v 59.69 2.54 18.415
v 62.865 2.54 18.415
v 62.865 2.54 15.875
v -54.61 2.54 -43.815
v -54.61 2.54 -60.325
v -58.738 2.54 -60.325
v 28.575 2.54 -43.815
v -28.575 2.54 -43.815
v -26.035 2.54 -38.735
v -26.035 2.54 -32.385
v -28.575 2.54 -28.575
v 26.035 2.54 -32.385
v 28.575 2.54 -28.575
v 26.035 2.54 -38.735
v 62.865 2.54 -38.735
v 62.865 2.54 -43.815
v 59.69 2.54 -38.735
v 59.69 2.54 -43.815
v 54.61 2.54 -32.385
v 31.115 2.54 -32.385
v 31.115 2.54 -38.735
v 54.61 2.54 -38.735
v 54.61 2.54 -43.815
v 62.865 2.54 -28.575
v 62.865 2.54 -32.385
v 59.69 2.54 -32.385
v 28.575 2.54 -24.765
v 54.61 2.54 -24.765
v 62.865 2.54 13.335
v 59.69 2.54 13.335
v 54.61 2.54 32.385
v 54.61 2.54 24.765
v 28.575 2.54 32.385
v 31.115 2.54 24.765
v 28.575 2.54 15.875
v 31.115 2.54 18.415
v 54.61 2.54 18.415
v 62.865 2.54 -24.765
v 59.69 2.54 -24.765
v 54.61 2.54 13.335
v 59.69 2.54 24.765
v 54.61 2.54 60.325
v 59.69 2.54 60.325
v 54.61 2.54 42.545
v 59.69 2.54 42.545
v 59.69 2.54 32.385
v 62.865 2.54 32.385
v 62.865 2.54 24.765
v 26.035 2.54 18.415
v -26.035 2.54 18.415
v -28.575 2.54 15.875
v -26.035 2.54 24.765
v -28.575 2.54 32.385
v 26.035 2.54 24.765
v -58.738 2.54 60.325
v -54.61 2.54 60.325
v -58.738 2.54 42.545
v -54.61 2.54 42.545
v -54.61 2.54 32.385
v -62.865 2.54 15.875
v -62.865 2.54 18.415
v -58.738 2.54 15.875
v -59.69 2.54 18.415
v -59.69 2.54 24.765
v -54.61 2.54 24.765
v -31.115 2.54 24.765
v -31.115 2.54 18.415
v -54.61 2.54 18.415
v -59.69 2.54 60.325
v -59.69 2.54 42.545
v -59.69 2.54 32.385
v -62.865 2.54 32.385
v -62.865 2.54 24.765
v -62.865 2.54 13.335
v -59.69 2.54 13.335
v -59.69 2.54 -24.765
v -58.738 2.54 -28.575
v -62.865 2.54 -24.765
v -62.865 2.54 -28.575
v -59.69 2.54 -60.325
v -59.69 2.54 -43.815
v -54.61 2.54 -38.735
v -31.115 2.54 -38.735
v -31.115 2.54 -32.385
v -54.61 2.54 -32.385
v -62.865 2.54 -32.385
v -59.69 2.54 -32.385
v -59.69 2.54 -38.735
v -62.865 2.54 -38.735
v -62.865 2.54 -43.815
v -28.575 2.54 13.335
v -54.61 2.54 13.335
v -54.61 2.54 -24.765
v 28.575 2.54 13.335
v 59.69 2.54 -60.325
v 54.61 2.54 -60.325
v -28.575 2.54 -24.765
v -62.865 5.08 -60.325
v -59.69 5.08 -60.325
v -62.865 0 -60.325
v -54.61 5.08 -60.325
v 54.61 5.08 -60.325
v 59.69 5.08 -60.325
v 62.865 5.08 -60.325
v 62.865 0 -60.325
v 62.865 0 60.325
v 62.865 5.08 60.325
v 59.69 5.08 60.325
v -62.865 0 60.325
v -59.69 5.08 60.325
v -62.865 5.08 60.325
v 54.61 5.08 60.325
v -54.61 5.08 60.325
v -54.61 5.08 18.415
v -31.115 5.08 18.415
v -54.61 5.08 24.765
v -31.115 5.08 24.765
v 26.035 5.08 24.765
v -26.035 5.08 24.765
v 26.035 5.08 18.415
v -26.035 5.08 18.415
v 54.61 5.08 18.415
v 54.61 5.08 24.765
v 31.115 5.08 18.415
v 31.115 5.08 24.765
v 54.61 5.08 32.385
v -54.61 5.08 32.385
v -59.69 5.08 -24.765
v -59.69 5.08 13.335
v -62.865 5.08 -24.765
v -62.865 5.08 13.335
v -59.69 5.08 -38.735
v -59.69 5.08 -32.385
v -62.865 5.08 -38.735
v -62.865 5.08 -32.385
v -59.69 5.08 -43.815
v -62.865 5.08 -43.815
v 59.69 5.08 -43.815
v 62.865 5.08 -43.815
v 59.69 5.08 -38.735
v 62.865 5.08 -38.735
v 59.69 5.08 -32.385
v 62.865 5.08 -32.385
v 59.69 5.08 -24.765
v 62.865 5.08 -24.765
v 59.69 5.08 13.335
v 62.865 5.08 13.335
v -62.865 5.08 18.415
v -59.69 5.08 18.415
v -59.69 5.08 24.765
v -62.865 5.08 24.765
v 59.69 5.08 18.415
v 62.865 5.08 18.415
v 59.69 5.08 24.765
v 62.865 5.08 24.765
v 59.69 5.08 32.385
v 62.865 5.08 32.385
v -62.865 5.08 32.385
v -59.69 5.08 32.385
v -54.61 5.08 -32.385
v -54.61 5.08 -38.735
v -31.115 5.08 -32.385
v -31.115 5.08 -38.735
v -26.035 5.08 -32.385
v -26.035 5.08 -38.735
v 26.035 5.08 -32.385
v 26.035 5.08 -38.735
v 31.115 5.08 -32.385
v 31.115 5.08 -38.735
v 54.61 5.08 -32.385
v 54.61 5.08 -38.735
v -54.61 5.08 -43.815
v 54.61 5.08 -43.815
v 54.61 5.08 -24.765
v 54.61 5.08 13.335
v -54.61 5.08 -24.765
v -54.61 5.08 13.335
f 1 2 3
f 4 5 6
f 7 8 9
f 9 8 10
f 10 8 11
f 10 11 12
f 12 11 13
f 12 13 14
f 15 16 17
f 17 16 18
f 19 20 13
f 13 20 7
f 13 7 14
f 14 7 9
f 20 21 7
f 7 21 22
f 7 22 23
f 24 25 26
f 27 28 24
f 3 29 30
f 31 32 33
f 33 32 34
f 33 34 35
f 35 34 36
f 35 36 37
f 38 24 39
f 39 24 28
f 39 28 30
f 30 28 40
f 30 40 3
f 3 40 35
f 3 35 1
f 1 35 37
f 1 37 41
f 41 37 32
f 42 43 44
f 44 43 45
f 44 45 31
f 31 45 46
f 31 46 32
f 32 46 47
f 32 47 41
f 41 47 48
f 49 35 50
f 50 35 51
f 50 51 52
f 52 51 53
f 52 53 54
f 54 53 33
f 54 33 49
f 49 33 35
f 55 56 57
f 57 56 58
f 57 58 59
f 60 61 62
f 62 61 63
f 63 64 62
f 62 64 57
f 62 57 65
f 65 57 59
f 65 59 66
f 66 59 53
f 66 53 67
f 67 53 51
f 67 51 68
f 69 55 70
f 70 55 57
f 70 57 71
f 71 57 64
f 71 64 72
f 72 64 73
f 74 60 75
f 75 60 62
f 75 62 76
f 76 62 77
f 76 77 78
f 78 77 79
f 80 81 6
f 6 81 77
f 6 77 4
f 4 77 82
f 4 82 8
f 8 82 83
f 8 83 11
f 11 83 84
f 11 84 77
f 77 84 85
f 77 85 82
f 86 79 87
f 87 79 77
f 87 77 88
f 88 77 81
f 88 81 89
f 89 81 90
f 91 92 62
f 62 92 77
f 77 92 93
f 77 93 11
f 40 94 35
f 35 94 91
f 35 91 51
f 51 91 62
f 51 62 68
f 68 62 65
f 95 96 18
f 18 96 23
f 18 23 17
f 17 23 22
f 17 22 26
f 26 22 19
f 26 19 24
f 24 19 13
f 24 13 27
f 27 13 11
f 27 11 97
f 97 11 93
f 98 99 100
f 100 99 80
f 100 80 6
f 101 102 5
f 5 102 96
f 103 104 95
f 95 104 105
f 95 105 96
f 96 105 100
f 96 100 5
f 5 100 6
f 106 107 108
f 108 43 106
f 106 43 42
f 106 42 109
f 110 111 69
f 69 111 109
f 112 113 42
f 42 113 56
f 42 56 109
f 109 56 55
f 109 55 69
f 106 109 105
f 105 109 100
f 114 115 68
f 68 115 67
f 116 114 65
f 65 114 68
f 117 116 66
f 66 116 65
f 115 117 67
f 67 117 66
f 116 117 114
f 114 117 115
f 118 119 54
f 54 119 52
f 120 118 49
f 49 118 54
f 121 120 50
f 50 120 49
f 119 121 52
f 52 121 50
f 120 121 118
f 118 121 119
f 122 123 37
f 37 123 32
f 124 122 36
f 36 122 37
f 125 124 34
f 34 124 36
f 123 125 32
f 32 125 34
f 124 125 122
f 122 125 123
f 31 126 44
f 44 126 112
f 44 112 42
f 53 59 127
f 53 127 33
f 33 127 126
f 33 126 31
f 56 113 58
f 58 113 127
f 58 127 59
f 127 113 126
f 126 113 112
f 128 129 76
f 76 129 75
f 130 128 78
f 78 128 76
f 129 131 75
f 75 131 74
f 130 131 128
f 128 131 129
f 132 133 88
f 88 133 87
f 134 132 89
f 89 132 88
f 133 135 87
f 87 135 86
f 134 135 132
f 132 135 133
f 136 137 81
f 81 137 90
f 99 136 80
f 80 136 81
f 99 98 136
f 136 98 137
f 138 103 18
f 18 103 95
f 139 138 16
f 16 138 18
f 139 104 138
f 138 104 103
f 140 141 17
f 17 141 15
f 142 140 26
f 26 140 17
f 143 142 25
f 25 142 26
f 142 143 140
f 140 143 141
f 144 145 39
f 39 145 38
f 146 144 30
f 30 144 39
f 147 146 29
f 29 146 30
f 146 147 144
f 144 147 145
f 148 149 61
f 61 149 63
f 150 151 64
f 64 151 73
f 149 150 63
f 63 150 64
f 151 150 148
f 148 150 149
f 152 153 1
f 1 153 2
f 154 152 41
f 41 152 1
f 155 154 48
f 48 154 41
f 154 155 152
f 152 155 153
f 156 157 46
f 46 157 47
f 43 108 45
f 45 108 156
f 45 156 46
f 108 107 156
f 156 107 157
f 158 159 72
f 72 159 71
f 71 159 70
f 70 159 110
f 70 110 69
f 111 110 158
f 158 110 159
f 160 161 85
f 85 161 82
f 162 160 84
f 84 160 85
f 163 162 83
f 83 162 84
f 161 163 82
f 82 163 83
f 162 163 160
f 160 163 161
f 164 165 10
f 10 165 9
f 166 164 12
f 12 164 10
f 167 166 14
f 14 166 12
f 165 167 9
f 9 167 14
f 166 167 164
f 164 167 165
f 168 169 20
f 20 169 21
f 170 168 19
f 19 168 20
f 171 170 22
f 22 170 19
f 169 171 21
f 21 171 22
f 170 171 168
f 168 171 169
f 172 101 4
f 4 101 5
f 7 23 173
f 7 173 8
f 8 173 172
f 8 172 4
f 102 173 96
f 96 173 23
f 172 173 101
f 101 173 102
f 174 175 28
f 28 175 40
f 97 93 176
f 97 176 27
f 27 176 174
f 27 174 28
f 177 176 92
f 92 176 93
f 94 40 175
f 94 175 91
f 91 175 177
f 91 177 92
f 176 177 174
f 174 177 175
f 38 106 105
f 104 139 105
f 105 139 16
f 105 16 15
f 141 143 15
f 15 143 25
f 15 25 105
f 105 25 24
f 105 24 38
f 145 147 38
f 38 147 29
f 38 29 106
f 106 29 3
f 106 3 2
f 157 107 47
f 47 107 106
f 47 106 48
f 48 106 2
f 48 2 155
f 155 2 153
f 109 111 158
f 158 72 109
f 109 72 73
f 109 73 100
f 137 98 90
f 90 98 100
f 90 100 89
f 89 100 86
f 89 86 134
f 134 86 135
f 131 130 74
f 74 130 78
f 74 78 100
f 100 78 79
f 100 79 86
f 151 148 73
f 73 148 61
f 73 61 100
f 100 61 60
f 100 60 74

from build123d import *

# Parameters (mm, degrees)
SKETCH2_W           = 120.65
SKETCH2_H           = 120.65
BOSS_EXTRUDE1_DEPTH = 2.54
SKETCH3_W           = 23.495
SKETCH3_H           = 6.35
SKETCH3_W_2         = 52.07
SKETCH3_W_3         = 109.22
SKETCH3_H_2         = 27.94
SKETCH3_W_4         = 0.635
SKETCH3_H_3         = 38.1
SKETCH3_H_4         = 16.51
BOSS_EXTRUDE2_DEPTH = 2.54
BOSS_EXTRUDE4_DEPTH = 2.54


with BuildPart() as part:
    # Sketch2 → Boss-Extrude1 (new body)
    with BuildSketch(Plane(origin=(0, 0, 0), x_dir=(1, 0, 0), z_dir=(0, 1, 0))):
        Rectangle(SKETCH2_W, SKETCH2_H)
    extrude(amount=BOSS_EXTRUDE1_DEPTH)

    # Sketch3 → Boss-Extrude2 (add)
    with BuildSketch(Plane(origin=(0, 2.54, 0), x_dir=(1, 0, 0), z_dir=(0, 1, 0))):
        with Locations((-42.8625, -21.59)):
            Rectangle(SKETCH3_W, SKETCH3_H)
        with Locations((0, -21.59)):
            Rectangle(SKETCH3_W_2, SKETCH3_H)
        with Locations((42.8625, -21.59)):
            Rectangle(SKETCH3_W, SKETCH3_H)
        with Locations((0, -46.355)):
            Rectangle(SKETCH3_W_3, SKETCH3_H_2)
        with Locations((-60.0075, 5.715)):
            Rectangle(SKETCH3_W_4, SKETCH3_H_3)
        with Locations((-60.0075, 35.56)):
            Rectangle(SKETCH3_W_4, SKETCH3_H)
        with Locations((-60.0075, 52.07)):
            Rectangle(SKETCH3_W_4, SKETCH3_H_4)
        with Locations((60.0075, 52.07)):
            Rectangle(SKETCH3_W_4, SKETCH3_H_4)
        with Locations((60.0075, 35.56)):
            Rectangle(SKETCH3_W_4, SKETCH3_H)
        with Locations((60.0075, 5.715)):
            Rectangle(SKETCH3_W_4, SKETCH3_H_3)
        with Locations((-60.0075, -21.59)):
            Rectangle(SKETCH3_W_4, SKETCH3_H)
        with Locations((60.0075, -21.59)):
            Rectangle(SKETCH3_W_4, SKETCH3_H)
        with Locations((60.0075, -46.355)):
            Rectangle(SKETCH3_W_4, SKETCH3_H_2)
        with Locations((-60.0075, -46.355)):
            Rectangle(SKETCH3_W_4, SKETCH3_H_2)
        with Locations((-42.8625, 35.56)):
            Rectangle(SKETCH3_W, SKETCH3_H)
        with Locations((0, 35.56)):
            Rectangle(SKETCH3_W_2, SKETCH3_H)
        with Locations((42.8625, 35.56)):
            Rectangle(SKETCH3_W, SKETCH3_H)
        with Locations((0, 52.07)):
            Rectangle(SKETCH3_W_3, SKETCH3_H_4)
        with Locations((0, 5.715)):
            Rectangle(SKETCH3_W_3, SKETCH3_H_3)
    extrude(amount=BOSS_EXTRUDE2_DEPTH)

    # Sketch5 → Boss-Extrude4 (add)
    with BuildSketch(Plane(origin=(60.325, 0, 0), x_dir=(0, 0, -1), z_dir=(1, 0, 0))):
        Polygon((-60.325, 0), (60.325, 0), (60.325, 5.08), (43.815, 5.08), (43.815, 2.54), (38.735, 2.54), (38.735, 5.08), (32.385, 5.08), (32.385, 2.54), (24.765, 2.54), (24.765, 5.08), (-13.335, 5.08), (-13.335, 2.54), (-18.415, 2.54), (-18.415, 5.08), (-24.765, 5.08), (-24.765, 2.54), (-32.385, 2.54), (-32.385, 5.08), (-60.325, 5.08), align=None)
    boss_extrude4 = extrude(amount=BOSS_EXTRUDE4_DEPTH)

    # Mirror2: Boss-Extrude4 across plane
    add(boss_extrude4.mirror(Plane(origin=(0, 0, 0), x_dir=(0, 0, 1), z_dir=(1, 0, 0))))


solid = part.part
